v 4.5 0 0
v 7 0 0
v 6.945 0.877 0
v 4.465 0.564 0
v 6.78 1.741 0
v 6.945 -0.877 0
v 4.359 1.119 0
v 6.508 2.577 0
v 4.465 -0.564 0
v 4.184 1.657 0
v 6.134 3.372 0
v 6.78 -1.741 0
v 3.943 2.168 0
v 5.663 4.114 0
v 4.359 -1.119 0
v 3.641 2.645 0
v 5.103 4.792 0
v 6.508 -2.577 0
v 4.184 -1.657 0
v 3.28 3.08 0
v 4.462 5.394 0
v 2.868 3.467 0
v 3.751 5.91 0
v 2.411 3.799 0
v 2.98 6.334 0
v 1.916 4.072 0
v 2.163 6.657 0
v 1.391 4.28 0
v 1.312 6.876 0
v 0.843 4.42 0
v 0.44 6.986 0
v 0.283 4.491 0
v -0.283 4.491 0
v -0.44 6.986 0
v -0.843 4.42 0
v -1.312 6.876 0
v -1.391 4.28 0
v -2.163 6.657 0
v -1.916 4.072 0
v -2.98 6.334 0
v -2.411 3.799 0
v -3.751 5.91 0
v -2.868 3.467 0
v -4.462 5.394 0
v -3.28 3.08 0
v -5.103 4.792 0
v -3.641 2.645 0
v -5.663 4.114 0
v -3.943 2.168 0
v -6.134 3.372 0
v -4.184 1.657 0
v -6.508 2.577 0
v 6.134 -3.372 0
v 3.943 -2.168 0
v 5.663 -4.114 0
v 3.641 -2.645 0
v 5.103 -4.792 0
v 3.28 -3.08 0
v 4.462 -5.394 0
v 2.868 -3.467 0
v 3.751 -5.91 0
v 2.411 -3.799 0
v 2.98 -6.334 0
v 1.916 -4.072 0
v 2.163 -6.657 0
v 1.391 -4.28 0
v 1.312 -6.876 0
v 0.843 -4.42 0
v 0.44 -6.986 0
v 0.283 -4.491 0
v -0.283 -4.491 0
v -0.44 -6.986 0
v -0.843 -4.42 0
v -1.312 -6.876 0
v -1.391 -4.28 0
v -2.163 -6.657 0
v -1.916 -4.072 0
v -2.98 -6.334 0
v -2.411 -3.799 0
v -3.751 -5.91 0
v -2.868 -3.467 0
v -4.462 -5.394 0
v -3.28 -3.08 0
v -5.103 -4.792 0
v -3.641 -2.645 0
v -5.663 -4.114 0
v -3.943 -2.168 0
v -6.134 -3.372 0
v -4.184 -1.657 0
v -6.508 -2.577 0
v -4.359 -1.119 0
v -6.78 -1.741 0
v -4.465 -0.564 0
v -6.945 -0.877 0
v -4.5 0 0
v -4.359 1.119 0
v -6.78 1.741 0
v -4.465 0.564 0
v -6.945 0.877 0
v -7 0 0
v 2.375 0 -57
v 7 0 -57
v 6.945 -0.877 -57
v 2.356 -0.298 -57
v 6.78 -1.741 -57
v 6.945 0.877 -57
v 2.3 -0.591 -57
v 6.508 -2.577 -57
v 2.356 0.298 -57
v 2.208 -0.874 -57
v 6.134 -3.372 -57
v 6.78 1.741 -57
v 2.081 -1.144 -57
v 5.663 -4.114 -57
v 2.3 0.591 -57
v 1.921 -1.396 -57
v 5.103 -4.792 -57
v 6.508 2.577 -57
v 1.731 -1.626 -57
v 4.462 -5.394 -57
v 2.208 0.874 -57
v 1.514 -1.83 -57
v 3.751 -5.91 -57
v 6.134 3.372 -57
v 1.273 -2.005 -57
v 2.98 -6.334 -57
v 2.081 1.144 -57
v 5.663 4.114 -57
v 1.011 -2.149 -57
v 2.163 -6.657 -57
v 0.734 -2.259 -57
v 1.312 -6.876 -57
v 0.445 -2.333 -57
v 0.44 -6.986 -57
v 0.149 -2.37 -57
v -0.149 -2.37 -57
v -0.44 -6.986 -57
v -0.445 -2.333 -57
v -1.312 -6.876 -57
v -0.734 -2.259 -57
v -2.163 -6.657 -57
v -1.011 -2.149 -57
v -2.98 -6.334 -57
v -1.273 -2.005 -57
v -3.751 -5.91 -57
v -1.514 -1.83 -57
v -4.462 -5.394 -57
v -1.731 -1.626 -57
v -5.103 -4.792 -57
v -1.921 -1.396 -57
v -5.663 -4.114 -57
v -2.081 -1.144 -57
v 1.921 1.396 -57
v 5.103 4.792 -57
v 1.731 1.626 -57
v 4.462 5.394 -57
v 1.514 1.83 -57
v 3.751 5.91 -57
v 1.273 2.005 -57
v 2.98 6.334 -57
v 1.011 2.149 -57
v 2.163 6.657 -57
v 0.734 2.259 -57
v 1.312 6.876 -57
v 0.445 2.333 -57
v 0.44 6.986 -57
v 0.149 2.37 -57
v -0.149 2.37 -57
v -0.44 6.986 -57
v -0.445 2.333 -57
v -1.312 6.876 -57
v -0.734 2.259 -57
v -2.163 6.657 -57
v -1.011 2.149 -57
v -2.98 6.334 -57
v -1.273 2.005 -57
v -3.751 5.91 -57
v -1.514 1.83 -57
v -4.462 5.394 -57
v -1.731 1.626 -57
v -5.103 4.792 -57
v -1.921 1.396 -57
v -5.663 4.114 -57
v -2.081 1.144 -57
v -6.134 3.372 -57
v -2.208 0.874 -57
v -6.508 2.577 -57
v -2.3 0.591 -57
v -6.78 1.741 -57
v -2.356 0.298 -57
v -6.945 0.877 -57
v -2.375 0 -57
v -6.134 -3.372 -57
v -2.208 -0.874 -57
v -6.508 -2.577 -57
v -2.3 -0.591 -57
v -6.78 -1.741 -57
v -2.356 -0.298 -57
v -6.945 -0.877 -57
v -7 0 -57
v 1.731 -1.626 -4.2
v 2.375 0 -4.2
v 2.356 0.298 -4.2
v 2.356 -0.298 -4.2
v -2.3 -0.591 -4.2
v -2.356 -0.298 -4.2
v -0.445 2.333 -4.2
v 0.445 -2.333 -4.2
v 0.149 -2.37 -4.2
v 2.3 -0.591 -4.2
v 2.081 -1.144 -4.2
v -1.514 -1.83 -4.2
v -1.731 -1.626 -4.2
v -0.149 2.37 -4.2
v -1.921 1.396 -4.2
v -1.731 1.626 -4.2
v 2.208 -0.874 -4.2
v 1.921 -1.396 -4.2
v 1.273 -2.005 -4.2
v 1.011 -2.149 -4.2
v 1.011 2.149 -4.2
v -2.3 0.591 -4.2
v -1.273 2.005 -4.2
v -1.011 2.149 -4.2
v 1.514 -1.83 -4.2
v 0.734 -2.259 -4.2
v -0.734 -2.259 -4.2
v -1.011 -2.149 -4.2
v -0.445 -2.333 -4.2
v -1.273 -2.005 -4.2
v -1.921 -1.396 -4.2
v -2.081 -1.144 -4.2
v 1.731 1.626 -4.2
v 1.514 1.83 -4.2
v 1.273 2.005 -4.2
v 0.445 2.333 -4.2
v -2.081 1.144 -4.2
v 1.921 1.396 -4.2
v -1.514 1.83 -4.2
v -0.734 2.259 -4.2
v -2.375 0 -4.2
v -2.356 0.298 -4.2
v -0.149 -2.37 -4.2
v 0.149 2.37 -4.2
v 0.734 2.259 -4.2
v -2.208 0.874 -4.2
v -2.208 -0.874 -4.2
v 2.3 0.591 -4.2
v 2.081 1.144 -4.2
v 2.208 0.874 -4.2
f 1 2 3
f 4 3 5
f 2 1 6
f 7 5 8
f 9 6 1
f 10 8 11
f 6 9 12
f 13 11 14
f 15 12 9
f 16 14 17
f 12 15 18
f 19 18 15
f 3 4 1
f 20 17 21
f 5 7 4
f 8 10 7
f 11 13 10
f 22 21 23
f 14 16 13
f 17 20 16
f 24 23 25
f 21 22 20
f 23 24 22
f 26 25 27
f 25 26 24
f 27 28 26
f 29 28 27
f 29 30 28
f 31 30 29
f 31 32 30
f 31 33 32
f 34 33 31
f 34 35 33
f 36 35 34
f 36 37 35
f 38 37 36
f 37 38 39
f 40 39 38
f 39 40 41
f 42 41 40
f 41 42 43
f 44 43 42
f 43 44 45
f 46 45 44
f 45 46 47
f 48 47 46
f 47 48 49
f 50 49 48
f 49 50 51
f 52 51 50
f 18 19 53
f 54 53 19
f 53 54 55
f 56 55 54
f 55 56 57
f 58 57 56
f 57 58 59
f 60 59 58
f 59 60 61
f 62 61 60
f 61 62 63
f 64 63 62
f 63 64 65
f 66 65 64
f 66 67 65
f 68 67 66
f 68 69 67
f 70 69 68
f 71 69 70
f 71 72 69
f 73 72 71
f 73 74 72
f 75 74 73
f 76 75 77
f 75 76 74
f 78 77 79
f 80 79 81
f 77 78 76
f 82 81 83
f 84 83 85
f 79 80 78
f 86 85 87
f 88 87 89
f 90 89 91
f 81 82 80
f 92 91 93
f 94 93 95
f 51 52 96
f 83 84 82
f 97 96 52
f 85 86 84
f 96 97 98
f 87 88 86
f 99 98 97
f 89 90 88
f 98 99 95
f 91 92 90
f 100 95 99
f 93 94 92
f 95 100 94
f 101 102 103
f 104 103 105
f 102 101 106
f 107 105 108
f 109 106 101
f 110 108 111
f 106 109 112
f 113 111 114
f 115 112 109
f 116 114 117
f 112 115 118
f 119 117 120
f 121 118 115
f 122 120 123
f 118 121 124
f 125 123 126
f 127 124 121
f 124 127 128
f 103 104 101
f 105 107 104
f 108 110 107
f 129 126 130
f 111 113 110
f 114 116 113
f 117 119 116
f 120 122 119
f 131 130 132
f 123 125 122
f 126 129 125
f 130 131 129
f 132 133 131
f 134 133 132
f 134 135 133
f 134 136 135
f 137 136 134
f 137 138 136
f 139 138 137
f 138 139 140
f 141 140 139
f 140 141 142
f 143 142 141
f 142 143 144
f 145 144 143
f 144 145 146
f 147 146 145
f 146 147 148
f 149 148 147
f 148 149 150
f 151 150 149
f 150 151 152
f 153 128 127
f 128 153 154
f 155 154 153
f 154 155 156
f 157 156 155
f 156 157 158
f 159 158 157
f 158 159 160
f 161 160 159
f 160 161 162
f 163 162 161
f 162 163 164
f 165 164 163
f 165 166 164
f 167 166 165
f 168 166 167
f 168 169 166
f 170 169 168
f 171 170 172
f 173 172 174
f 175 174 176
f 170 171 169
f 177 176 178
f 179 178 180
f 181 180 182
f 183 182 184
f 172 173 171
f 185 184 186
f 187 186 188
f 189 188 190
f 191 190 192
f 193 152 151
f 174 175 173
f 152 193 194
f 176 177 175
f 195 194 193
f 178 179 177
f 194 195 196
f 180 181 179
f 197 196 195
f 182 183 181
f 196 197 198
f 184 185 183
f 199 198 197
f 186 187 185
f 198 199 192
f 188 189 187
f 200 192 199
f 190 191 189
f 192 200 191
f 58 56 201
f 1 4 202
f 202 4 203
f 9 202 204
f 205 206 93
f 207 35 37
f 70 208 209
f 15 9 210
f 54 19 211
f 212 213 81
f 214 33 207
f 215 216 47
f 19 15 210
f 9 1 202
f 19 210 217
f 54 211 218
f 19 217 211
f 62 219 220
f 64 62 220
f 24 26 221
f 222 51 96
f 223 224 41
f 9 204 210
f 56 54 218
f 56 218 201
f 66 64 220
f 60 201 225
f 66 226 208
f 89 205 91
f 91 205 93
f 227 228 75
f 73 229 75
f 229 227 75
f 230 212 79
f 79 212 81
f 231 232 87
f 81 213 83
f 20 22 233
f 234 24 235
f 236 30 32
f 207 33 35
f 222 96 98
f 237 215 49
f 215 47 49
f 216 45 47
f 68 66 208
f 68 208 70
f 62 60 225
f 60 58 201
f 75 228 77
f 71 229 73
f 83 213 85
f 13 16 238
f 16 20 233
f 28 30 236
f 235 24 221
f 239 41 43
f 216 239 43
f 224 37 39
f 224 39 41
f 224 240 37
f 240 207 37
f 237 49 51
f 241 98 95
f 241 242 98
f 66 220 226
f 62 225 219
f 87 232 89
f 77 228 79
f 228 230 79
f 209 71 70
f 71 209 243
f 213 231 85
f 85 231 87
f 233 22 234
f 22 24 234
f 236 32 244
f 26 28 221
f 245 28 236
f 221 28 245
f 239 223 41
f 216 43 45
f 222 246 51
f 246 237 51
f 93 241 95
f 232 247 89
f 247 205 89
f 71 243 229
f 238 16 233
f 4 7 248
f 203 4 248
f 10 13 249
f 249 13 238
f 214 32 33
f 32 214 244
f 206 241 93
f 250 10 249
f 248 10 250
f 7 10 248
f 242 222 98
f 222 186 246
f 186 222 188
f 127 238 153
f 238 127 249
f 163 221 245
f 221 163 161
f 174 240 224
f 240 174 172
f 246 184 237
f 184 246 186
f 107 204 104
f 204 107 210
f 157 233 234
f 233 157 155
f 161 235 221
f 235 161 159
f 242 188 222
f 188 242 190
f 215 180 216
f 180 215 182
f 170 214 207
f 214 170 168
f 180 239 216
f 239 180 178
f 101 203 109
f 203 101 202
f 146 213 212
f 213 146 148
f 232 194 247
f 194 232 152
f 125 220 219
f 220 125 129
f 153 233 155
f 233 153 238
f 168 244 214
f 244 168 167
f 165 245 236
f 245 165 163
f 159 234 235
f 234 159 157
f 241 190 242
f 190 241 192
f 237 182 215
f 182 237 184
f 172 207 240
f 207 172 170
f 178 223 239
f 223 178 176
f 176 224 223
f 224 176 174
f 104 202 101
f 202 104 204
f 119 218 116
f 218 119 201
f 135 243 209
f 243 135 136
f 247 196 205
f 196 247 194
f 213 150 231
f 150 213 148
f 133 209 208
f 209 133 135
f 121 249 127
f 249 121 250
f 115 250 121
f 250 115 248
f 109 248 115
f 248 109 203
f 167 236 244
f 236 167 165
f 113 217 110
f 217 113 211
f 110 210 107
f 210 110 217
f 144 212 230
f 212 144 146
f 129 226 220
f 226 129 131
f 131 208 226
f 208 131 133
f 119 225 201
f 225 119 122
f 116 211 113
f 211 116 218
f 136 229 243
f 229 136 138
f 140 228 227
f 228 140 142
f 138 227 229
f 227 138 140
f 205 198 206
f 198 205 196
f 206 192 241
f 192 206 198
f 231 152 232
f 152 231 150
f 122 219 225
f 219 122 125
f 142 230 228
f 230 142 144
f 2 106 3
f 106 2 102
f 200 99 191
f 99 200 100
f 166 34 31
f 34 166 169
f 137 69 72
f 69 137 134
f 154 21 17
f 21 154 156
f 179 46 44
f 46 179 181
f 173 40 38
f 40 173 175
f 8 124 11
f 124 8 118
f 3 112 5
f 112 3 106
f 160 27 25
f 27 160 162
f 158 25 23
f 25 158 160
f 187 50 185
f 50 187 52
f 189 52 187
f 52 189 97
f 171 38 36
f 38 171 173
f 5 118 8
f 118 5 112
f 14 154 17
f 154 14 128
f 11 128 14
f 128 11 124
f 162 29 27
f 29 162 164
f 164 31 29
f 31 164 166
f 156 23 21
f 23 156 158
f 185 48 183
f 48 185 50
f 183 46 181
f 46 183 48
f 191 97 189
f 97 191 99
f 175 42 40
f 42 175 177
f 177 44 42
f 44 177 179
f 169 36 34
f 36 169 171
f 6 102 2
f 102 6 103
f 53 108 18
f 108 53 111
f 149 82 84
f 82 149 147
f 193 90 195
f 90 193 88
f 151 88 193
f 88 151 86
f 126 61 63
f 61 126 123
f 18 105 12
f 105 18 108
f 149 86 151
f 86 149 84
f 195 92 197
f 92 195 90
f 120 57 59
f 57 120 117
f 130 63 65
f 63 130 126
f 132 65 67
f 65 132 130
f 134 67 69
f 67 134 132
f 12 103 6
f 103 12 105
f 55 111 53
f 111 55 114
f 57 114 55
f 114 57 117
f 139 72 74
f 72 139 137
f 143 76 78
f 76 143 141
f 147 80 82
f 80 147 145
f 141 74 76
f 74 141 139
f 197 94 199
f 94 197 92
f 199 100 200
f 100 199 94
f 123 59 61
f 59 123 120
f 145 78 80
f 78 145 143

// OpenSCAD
$fn = 50;


difference() {
	union() {
		translate(v = [0, 0, -57.0000000000]) {
			cylinder(h = 57, r = 7.0000000000);
		}
		cylinder(h = 0, r = 10.0000000000);
	}
	union() {
		translate(v = [0, 0, 0]) {
			rotate(a = [0, 0, 0]) {
				difference() {
					union() {
						#translate(v = [0, 0, -57.0000000000]) {
							cylinder(h = 57, r = 2.2500000000);
						}
						#translate(v = [0, 0, -4.2000000000]) {
							cylinder(h = 4.2000000000, r = 7.0000000000, r1 = 2.3750000000, r2 = 4.5000000000);
						}
						#translate(v = [0, 0, -57.0000000000]) {
							cylinder(h = 57, r = 2.3750000000);
						}
						#translate(v = [0, 0, -57.0000000000]) {
							cylinder(h = 57, r = 2.2500000000);
						}
					}
					union();
				}
			}
		}
	}
}
